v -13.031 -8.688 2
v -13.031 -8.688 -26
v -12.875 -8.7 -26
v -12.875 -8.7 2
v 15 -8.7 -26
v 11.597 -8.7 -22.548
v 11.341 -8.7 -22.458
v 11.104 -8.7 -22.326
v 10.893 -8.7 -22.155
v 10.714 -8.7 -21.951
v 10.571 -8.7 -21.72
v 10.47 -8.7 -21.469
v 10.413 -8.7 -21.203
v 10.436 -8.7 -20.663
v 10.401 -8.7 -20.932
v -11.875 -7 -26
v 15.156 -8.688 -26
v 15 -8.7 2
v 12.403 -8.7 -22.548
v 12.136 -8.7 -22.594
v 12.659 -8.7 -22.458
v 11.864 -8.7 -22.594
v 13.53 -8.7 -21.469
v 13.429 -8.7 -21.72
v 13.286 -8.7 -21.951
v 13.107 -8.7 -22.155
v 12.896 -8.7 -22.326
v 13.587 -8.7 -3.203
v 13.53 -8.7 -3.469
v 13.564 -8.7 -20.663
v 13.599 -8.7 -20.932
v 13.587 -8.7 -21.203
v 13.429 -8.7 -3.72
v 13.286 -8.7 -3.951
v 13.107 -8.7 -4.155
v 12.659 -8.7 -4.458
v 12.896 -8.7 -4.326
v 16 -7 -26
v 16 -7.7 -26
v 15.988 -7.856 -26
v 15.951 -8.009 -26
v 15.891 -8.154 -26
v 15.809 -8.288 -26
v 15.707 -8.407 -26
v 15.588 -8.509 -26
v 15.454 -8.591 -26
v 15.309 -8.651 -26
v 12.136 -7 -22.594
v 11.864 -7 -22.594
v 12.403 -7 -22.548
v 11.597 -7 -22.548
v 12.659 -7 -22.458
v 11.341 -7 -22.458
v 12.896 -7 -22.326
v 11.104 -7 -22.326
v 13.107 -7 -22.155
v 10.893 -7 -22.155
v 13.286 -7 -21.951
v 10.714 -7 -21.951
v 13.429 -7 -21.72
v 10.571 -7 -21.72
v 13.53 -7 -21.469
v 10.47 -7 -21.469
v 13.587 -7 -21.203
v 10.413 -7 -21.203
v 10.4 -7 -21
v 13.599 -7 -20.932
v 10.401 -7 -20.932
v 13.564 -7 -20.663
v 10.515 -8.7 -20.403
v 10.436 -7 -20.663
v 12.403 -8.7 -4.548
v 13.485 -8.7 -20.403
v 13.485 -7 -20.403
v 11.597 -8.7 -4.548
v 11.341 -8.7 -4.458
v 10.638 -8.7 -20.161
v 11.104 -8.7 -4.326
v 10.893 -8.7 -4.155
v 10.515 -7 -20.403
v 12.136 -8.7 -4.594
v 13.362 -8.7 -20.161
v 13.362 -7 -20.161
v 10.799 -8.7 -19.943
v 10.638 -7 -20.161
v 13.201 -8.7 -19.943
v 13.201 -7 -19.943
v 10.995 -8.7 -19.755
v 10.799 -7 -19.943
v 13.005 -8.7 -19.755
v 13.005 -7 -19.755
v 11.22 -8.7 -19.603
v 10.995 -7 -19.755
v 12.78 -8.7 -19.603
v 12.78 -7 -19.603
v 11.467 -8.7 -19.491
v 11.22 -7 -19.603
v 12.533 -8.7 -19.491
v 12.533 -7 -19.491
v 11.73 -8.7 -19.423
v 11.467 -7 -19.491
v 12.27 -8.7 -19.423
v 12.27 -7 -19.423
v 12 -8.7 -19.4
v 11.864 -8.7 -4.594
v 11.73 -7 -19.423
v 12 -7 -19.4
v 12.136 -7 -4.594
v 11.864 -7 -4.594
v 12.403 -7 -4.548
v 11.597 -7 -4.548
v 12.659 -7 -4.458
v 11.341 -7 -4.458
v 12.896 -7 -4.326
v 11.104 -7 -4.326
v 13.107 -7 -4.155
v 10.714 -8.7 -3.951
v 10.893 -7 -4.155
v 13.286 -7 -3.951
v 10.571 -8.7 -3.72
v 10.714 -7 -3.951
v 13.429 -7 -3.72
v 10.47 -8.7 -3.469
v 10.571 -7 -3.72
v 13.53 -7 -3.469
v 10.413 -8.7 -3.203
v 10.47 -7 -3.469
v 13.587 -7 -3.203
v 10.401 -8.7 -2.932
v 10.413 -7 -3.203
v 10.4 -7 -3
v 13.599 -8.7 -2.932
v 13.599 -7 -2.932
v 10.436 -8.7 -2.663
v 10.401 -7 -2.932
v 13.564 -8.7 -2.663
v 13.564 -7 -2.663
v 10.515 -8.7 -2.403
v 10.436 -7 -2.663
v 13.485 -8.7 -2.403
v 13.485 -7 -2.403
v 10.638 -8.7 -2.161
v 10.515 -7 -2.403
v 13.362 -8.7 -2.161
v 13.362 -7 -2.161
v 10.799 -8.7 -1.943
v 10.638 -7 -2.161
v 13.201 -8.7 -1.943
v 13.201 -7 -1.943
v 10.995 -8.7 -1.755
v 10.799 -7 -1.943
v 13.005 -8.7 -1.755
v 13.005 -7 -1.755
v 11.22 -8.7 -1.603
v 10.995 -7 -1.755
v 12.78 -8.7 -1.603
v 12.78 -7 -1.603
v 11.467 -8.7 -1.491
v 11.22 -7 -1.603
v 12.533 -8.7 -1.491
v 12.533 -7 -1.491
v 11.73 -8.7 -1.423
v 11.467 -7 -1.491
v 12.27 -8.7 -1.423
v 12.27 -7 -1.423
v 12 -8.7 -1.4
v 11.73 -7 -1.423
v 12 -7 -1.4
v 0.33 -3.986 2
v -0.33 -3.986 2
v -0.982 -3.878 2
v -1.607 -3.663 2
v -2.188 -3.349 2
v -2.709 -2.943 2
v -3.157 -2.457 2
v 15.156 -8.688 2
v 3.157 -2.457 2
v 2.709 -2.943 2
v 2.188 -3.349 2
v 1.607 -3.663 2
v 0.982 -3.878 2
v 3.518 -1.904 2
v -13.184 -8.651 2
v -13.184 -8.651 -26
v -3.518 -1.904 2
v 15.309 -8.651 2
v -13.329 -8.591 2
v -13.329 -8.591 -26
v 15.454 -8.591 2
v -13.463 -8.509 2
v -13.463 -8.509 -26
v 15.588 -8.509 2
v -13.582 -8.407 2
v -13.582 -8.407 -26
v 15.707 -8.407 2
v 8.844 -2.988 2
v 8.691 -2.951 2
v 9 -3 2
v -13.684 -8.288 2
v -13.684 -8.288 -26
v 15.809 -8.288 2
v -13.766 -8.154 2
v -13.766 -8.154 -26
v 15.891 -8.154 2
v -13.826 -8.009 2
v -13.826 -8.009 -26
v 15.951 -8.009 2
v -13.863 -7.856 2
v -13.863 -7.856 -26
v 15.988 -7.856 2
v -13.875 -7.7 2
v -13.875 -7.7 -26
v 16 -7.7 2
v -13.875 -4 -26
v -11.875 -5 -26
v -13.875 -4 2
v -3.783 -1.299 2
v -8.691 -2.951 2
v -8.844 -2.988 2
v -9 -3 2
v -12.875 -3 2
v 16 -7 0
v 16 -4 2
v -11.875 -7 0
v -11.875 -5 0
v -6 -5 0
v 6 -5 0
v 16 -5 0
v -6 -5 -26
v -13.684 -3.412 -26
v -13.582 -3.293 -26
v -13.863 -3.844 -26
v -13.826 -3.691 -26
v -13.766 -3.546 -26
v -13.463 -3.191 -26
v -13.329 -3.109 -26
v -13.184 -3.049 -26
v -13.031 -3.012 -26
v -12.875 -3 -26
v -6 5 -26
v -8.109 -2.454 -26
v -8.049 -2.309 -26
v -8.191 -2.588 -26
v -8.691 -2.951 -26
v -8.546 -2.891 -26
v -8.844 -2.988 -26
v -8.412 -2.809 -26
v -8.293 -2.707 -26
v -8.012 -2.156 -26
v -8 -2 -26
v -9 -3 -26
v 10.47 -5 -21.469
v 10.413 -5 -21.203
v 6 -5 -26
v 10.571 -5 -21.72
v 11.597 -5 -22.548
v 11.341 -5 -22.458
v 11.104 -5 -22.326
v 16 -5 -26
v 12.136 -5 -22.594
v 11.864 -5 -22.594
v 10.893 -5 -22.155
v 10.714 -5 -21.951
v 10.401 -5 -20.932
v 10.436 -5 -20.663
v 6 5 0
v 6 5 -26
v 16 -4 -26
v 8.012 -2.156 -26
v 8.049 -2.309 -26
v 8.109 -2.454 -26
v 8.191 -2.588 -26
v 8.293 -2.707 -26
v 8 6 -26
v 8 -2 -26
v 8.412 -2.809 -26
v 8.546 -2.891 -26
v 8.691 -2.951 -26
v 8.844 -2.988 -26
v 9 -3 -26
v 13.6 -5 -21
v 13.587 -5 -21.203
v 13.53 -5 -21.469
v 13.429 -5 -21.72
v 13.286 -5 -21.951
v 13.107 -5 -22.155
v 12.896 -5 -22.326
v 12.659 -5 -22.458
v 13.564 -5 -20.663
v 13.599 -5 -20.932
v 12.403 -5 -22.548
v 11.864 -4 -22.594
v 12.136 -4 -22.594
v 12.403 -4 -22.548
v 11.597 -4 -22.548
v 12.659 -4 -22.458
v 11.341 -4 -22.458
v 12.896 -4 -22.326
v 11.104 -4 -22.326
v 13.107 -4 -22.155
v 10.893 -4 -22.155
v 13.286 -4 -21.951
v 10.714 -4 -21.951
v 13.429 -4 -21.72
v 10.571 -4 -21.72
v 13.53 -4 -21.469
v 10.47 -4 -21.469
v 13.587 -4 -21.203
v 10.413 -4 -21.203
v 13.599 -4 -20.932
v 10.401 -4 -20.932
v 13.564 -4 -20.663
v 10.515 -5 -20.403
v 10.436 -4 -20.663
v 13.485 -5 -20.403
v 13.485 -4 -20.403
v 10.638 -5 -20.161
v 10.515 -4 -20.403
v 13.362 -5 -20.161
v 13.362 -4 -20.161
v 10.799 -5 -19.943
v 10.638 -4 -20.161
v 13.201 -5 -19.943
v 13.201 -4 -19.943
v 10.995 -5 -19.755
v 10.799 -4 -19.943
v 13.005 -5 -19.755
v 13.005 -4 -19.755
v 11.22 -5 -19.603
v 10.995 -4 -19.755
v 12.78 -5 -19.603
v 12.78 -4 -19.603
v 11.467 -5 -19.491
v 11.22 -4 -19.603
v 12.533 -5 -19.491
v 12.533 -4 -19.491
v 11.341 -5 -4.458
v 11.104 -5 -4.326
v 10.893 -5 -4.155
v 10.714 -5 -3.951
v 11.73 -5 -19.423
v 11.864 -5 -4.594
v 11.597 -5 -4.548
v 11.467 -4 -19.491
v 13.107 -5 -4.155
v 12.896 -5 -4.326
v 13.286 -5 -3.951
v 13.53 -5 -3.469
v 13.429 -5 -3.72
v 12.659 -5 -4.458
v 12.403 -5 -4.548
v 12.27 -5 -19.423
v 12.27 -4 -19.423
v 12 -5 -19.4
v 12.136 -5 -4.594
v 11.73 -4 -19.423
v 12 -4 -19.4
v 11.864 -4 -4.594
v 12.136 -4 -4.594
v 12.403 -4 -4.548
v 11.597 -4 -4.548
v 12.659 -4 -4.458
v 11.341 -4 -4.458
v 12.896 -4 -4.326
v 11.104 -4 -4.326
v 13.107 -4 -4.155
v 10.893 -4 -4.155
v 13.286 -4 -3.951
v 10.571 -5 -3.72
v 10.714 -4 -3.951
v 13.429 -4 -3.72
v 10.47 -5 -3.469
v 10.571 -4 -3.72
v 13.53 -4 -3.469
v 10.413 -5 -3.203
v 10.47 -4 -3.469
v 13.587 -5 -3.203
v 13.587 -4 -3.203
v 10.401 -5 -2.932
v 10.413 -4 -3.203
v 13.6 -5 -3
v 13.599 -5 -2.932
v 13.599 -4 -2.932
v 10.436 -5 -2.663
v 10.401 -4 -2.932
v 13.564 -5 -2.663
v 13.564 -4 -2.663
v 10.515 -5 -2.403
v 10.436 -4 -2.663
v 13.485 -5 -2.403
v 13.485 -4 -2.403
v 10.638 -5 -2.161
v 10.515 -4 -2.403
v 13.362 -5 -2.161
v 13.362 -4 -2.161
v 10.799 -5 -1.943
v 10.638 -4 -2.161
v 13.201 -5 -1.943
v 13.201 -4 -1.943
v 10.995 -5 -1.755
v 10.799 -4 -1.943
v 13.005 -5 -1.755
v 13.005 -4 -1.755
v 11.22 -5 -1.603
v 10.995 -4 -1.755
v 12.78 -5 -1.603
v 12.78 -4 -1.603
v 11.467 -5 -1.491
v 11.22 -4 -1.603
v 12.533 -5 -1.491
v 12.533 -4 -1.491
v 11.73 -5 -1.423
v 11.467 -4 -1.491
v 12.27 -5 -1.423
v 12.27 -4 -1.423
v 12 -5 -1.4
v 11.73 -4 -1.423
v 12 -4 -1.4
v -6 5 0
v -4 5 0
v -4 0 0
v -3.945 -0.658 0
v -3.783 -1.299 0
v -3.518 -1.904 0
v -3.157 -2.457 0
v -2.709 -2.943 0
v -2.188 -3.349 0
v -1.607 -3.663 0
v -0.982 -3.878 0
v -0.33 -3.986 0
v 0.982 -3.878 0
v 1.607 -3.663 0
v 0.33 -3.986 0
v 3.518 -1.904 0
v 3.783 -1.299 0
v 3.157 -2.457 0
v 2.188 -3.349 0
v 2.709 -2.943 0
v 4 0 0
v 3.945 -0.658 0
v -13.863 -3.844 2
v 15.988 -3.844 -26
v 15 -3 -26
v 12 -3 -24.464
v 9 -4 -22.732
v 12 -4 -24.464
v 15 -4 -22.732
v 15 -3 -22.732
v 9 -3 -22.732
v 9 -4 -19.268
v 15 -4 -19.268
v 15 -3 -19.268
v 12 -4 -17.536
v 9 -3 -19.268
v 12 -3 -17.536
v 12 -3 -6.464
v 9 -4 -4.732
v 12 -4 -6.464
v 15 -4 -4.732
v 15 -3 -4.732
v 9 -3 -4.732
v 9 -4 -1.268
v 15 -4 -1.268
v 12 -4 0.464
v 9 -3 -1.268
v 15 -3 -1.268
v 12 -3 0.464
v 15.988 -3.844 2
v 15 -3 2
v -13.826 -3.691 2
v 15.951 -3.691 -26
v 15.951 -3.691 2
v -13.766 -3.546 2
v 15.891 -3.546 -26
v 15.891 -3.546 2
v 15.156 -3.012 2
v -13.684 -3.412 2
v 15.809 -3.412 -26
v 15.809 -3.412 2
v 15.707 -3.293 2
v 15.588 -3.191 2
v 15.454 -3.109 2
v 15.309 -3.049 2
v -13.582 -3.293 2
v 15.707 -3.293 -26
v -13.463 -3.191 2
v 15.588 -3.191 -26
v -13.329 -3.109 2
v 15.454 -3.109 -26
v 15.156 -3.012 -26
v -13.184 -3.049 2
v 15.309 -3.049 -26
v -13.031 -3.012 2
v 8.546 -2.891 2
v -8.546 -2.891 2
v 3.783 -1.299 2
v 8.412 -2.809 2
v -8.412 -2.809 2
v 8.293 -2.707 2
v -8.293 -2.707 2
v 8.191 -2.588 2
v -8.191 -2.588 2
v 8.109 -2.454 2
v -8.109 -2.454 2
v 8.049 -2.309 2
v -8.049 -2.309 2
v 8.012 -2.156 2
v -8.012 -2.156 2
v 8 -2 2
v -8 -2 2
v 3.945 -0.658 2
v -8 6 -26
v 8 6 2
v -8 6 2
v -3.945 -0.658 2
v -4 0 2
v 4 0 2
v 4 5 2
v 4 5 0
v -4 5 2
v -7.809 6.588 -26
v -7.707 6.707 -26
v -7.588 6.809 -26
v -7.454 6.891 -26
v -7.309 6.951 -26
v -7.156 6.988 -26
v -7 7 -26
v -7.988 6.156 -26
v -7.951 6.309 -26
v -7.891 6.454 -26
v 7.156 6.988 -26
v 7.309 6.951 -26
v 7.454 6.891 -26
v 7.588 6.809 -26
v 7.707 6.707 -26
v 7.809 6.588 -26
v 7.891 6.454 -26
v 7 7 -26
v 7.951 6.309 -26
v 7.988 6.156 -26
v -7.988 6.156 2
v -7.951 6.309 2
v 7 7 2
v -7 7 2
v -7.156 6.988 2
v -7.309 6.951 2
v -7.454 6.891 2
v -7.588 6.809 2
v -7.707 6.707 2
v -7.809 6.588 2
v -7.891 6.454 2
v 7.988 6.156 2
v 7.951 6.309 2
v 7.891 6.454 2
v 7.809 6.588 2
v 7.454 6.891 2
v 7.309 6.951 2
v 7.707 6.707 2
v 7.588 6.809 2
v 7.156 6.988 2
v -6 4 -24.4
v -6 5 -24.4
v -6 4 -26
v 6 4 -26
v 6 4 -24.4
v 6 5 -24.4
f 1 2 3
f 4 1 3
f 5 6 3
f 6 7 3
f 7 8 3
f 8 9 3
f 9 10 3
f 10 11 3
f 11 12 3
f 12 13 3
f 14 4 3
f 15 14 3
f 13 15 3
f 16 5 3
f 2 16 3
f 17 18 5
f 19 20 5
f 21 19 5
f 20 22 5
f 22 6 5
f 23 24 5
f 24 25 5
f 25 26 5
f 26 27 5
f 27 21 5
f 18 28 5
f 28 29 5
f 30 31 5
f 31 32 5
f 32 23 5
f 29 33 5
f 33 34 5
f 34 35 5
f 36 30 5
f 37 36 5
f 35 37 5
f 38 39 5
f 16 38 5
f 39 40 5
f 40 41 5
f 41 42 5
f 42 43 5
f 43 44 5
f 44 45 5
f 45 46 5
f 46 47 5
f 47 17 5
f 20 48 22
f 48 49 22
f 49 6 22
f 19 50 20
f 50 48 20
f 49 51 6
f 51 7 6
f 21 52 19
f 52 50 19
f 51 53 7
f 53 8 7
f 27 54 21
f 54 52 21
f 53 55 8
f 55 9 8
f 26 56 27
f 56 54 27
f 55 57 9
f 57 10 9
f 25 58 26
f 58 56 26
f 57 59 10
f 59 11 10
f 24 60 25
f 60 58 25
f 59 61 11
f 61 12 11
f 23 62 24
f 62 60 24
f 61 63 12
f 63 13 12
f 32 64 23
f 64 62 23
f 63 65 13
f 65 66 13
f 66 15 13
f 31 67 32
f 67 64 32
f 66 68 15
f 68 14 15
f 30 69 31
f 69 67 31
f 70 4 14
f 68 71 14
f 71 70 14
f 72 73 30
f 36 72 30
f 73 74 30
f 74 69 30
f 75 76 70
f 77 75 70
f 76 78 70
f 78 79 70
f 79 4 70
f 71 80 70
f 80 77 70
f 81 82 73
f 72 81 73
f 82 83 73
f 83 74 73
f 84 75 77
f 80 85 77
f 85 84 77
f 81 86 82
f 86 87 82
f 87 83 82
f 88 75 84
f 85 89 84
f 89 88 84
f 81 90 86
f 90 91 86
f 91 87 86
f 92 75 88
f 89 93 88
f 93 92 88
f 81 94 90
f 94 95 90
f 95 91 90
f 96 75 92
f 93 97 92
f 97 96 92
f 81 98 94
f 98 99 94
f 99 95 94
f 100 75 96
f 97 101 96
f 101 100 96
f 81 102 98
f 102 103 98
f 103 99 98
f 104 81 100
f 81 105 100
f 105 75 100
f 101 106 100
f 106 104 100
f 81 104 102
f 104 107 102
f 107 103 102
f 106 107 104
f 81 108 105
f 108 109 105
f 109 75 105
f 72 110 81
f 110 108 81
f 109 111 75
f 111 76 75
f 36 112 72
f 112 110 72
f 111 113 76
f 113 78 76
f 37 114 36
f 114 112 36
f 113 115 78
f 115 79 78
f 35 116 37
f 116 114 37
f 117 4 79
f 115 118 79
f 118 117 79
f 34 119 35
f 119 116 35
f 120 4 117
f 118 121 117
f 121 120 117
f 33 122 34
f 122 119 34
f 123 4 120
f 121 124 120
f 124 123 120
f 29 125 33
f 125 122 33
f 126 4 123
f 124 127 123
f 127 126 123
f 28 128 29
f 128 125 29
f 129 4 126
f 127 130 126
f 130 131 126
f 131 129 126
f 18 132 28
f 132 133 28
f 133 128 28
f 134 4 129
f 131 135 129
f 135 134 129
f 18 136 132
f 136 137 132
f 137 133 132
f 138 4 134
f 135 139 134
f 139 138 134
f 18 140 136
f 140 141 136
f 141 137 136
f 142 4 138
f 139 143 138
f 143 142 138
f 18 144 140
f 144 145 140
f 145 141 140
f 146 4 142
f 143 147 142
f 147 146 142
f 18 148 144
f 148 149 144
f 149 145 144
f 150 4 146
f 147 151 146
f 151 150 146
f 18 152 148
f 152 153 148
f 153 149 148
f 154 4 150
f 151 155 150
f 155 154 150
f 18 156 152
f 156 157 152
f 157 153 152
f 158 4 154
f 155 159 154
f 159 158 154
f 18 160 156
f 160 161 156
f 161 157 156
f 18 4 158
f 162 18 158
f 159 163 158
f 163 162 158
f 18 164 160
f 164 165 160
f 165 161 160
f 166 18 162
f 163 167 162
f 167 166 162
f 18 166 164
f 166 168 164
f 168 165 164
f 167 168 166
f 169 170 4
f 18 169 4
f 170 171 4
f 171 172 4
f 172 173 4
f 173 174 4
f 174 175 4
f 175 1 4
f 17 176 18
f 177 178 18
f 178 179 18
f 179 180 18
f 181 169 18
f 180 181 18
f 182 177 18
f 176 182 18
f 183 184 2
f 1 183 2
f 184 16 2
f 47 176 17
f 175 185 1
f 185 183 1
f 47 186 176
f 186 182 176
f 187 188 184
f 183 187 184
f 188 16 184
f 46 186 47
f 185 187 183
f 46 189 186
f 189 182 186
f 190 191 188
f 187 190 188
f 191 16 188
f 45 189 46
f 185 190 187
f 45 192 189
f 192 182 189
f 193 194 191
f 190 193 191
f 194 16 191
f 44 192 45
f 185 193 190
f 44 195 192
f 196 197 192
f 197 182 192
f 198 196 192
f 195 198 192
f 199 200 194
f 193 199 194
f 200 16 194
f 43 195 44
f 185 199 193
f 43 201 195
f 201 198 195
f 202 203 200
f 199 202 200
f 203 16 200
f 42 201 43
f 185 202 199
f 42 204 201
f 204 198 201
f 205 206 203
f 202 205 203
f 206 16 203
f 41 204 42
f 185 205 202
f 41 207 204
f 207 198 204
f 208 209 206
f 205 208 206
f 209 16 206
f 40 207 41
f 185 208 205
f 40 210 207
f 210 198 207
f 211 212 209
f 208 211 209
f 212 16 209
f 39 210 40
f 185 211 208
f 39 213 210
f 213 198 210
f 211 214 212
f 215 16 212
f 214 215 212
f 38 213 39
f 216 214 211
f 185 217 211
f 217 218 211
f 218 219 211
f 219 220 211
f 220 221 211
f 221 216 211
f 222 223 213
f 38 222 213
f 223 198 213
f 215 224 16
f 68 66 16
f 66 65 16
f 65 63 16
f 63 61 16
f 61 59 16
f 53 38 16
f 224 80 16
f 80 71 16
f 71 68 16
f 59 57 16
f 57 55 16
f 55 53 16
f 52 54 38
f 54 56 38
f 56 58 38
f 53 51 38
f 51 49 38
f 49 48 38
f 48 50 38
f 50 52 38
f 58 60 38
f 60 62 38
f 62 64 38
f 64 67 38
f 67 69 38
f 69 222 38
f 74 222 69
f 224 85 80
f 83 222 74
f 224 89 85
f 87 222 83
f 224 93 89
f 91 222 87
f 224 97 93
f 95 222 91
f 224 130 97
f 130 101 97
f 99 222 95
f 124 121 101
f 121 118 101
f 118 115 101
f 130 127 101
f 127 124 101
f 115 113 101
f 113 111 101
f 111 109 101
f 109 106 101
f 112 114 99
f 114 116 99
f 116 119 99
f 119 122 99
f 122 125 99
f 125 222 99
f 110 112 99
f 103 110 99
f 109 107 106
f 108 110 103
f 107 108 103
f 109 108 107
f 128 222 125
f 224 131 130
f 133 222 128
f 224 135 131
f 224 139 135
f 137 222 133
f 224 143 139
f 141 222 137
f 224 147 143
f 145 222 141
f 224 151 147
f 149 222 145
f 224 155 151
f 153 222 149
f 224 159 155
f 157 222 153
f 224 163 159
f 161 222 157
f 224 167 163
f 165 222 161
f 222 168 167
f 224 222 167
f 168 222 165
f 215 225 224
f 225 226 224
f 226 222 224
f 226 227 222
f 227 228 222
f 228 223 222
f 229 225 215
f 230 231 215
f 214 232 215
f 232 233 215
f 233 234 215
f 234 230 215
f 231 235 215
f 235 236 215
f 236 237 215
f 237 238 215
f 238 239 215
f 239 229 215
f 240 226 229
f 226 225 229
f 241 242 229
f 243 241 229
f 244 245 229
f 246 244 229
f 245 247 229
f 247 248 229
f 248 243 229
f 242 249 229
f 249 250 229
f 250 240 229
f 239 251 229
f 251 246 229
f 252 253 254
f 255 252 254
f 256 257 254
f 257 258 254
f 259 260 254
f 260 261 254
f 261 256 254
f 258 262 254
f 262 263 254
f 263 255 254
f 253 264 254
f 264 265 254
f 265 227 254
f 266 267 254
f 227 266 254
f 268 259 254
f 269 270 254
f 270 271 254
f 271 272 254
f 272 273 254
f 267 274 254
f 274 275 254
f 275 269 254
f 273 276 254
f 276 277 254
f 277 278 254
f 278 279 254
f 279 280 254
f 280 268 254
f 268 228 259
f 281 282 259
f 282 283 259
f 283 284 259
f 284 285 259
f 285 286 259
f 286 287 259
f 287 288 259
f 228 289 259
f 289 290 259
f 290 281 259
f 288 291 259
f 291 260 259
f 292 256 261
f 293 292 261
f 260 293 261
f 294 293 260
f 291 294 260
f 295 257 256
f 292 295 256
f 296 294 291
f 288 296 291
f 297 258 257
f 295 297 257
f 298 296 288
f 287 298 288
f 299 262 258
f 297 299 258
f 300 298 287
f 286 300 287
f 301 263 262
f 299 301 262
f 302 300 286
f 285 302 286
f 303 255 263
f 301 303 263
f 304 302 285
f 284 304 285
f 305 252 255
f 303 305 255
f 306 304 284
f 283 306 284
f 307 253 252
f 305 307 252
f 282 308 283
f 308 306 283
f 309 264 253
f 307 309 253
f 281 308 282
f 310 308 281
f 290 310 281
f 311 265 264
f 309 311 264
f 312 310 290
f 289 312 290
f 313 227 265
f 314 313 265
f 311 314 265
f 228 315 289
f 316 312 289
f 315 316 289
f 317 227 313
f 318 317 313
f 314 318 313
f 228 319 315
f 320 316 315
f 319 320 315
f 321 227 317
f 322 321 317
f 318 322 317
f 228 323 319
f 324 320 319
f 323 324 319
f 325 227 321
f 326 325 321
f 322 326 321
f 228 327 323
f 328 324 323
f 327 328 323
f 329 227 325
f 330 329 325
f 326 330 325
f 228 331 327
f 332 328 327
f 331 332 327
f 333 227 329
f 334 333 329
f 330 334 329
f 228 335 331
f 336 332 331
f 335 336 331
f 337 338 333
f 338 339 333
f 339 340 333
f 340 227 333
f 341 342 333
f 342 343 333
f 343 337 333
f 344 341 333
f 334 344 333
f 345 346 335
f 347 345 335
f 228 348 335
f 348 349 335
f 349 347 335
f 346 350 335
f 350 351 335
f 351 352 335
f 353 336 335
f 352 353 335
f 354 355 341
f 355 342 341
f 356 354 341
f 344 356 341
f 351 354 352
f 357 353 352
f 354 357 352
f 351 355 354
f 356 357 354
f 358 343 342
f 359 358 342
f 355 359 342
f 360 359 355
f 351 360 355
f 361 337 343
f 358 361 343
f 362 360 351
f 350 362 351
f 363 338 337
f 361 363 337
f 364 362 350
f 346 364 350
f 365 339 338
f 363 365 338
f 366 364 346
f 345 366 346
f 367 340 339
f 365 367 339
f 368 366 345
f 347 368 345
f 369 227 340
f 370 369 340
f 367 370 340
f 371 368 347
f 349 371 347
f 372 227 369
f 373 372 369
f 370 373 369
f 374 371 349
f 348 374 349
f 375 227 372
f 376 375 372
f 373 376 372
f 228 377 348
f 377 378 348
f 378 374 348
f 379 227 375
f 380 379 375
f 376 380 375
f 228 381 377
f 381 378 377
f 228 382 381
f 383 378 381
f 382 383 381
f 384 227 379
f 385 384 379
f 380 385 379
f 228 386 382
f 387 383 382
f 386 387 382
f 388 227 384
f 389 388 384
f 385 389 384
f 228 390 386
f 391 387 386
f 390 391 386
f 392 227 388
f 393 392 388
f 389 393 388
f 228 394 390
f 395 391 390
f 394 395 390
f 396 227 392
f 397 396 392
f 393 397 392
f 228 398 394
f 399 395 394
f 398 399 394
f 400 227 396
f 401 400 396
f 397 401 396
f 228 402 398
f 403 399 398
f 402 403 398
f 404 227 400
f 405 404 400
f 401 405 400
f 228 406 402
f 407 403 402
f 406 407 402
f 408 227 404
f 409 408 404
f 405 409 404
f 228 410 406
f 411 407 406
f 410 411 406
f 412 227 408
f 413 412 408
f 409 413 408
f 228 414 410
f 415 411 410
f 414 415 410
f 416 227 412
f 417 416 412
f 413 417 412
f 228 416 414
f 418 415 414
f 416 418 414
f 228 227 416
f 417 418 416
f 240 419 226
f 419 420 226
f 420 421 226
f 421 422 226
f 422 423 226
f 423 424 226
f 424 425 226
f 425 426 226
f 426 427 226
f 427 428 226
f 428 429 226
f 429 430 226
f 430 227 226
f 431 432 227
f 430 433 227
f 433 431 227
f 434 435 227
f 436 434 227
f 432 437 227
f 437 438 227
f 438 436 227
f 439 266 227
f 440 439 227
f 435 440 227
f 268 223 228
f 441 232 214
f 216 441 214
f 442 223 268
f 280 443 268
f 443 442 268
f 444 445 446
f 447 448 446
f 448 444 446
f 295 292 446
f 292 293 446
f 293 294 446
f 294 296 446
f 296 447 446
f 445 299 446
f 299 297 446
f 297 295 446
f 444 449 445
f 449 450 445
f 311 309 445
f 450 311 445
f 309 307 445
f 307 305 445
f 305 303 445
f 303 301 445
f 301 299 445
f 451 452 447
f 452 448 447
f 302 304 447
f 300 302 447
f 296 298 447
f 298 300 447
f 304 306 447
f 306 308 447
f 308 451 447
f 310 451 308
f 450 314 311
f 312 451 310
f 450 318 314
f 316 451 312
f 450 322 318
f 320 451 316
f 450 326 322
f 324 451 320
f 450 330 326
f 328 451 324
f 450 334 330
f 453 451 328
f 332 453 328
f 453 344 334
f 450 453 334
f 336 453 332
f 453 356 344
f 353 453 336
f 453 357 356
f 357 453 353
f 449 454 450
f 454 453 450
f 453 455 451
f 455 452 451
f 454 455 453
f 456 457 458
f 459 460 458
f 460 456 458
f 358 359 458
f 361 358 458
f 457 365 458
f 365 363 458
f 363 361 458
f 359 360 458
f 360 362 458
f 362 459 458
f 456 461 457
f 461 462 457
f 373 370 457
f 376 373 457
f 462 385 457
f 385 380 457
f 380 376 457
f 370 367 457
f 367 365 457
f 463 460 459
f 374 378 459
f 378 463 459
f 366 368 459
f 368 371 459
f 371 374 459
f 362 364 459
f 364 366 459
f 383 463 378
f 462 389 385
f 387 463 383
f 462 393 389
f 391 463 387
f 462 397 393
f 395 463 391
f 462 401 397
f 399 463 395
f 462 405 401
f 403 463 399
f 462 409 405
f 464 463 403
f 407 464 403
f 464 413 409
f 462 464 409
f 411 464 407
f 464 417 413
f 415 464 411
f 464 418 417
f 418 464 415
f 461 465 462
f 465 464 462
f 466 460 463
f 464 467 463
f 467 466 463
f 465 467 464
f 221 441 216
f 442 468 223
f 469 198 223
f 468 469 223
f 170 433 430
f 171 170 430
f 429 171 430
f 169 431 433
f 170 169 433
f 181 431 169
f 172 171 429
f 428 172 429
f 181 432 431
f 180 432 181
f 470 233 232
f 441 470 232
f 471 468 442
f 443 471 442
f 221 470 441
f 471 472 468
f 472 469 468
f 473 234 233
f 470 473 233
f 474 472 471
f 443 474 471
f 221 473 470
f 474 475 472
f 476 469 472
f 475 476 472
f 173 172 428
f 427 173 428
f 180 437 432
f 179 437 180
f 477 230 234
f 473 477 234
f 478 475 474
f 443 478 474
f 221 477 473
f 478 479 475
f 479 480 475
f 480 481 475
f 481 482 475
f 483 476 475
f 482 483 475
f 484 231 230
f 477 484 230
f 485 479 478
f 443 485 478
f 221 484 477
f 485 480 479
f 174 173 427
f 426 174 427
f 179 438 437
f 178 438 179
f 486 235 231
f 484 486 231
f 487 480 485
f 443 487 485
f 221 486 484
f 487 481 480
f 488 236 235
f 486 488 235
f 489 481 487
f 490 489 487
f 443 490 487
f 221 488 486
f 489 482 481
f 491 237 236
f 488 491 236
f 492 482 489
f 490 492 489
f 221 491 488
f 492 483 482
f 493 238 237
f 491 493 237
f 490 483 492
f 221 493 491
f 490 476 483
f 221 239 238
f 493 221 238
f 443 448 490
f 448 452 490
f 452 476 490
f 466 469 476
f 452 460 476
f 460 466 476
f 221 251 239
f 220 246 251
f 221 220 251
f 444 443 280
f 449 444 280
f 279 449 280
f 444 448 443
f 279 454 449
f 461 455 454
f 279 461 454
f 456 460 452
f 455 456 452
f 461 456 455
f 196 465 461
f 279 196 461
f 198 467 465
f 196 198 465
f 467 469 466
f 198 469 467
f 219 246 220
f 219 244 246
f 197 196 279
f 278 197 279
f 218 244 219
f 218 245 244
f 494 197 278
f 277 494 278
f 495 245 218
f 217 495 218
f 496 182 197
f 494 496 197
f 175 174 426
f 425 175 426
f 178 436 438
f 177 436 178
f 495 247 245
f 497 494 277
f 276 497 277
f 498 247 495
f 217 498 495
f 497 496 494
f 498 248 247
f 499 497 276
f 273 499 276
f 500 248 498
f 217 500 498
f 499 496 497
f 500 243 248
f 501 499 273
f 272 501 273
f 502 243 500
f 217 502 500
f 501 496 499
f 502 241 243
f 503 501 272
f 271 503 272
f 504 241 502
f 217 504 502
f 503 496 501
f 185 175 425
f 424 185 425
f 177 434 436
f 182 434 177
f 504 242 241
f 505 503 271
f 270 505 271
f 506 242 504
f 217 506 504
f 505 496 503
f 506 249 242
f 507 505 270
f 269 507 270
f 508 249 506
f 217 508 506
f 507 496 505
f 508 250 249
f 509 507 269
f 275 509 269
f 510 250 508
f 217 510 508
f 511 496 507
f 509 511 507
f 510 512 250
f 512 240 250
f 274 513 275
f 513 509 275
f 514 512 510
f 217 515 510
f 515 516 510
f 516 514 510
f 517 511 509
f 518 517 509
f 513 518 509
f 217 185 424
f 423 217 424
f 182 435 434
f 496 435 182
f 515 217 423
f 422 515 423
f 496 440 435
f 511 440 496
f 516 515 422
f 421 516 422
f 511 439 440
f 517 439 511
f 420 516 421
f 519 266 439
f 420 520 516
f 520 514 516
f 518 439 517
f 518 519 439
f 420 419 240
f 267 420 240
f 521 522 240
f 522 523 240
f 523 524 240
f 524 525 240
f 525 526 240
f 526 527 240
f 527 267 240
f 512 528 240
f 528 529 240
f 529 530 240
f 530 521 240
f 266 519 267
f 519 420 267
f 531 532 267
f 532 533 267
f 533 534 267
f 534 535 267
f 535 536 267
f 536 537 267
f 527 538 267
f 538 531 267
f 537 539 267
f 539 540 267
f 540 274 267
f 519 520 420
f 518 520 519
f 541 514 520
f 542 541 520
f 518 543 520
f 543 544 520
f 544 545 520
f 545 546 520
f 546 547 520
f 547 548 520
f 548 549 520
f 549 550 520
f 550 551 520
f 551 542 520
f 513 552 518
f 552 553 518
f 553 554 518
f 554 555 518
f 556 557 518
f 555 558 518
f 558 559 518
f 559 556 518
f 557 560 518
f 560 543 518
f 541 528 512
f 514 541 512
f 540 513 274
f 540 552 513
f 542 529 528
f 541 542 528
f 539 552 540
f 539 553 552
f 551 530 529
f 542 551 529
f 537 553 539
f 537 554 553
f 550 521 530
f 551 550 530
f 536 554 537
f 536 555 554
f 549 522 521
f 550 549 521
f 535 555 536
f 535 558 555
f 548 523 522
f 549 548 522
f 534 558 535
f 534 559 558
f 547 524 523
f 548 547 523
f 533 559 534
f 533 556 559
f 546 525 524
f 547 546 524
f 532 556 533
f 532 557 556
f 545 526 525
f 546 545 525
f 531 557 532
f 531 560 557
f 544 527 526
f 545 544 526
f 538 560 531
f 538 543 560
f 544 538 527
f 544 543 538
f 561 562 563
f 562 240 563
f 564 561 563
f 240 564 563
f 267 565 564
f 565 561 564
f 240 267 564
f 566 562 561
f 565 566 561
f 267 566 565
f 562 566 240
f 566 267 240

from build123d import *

# Parameters (mm, degrees)
EXTRUDE_1_DEPTH          = 2
EXTRUDE_2_DEPTH          = 26
CUT_EXTRUDE_2_DEPTH      = 11
CUT_EXTRUDE_2_DEPTH_BACK = 1
CUT_EXTRUDE_3_DEPTH      = 11
CUT_EXTRUDE_3_DEPTH_BACK = 1
SKETCH_9_R               = 1.6
CUT_EXTRUDE_4_DEPTH      = 5.7
SKETCH_10_W              = 12
SKETCH_10_H              = 1
EXTRUDE_3_DEPTH          = 1.6


with BuildPart() as part:
    # 草图1 → 凸台-拉伸1 (new body)
    with BuildSketch(Plane.XY):
        with BuildLine():
            ThreePointArc((16, -4), (15.707106781, -3.292893219), (15, -3))
            Line((15, -3), (9, -3))
            ThreePointArc((9, -3), (8.292893219, -2.707106781), (8, -2))
            Line((8, -2), (8, 6))
            ThreePointArc((8, 6), (7.707106781, 6.707106781), (7, 7))
            Line((7, 7), (-7, 7))
            ThreePointArc((-7, 7), (-7.707106781, 6.707106781), (-8, 6))
            Line((-8, 6), (-8, -2))
            ThreePointArc((-8, -2), (-8.292893219, -2.707106781), (-9, -3))
            Line((-9, -3), (-12.875, -3))
            ThreePointArc((-12.875, -3), (-13.582106781, -3.292893219), (-13.875, -4))
            Line((-13.875, -4), (-13.875, -7.7))
            ThreePointArc((-13.875, -7.7), (-13.582106781, -8.407106781), (-12.875, -8.7))
            Line((-12.875, -8.7), (15, -8.7))
            ThreePointArc((15, -8.7), (15.707106781, -8.407106781), (16, -7.7))
            Line((16, -7.7), (16, -4))
        make_face()
        with BuildLine():
            Line((4, 5), (4, 0))
            ThreePointArc((4, 0), (0, -4), (-4, 0))
            Line((-4, 0), (-4, 5))
            Line((-4, 5), (4, 5))
        make_face(mode=Mode.SUBTRACT)
    extrude(amount=EXTRUDE_1_DEPTH)

    # 草图2 → 凸台-拉伸2 (add)
    with BuildSketch(Plane(origin=(0, 0, 0), x_dir=(-1, 0, 0), z_dir=(0, 0, -1))):
        with BuildLine():
            Line((-6, 4.5), (-6, 5))
            Line((-6, 5), (-5.5, 5))
            Line((-5.5, 5), (5.5, 5))
            Line((5.5, 5), (6, 5))
            Line((6, 5), (6, 4.5))
            Line((6, 4.5), (6, -4.5))
            Line((6, -4.5), (6, -5))
            Line((6, -5), (11.875, -5))
            Line((11.875, -5), (11.875, -7))
            Line((11.875, -7), (-16, -7))
            Line((-16, -7), (-16, -7.7))
            ThreePointArc((-16, -7.7), (-15.707106781, -8.407106781), (-15, -8.7))
            Line((-15, -8.7), (12.875, -8.7))
            ThreePointArc((12.875, -8.7), (13.582106781, -8.407106781), (13.875, -7.7))
            Line((13.875, -7.7), (13.875, -4))
            ThreePointArc((13.875, -4), (13.582106781, -3.292893219), (12.875, -3))
            Line((12.875, -3), (9, -3))
            ThreePointArc((9, -3), (8.292893219, -2.707106781), (8, -2))
            Line((8, -2), (8, 6))
            ThreePointArc((8, 6), (7.707106781, 6.707106781), (7, 7))
            Line((7, 7), (-7, 7))
            ThreePointArc((-7, 7), (-7.707106781, 6.707106781), (-8, 6))
            Line((-8, 6), (-8, -2))
            ThreePointArc((-8, -2), (-8.292893219, -2.707106781), (-9, -3))
            Line((-9, -3), (-15, -3))
            ThreePointArc((-15, -3), (-15.707106781, -3.292893219), (-16, -4))
            Line((-16, -4), (-16, -5))
            Line((-16, -5), (-6, -5))
            Line((-6, -5), (-6, -4.5))
            Line((-6, -4.5), (-6, 4.5))
        make_face()
    extrude(amount=EXTRUDE_2_DEPTH)

    # 草图5 → 切除-拉伸2 (cut, two sides)
    with BuildSketch(Plane(origin=(0, -3, 0), x_dir=(1, 0, 0), z_dir=(0, 1, 0))) as cut_extrude_2_sk:
        Polygon((15, 22.732050808), (12, 24.464101615), (9, 22.732050808), (9, 19.267949192), (12, 17.535898385), (15, 19.267949192), align=None)
    extrude(amount=CUT_EXTRUDE_2_DEPTH, mode=Mode.SUBTRACT)
    extrude(cut_extrude_2_sk.sketch, amount=-CUT_EXTRUDE_2_DEPTH_BACK, mode=Mode.SUBTRACT)

    # 草图6 → 切除-拉伸3 (cut, two sides)
    with BuildSketch(Plane(origin=(0, -3, 0), x_dir=(1, 0, 0), z_dir=(0, 1, 0))) as cut_extrude_3_sk:
        Polygon((15, 4.732050808), (12, 6.464101615), (9, 4.732050808), (9, 1.267949192), (12, -0.464101615), (15, 1.267949192), align=None)
    extrude(amount=CUT_EXTRUDE_3_DEPTH, mode=Mode.SUBTRACT)
    extrude(cut_extrude_3_sk.sketch, amount=-CUT_EXTRUDE_3_DEPTH_BACK, mode=Mode.SUBTRACT)

    # 草图9 → 切除-拉伸4 (cut, through all)
    with BuildSketch(Plane(origin=(0, -4, 0), x_dir=(1, 0, 0), z_dir=(0, 1, 0))):
        with Locations((12, 3)):
            Circle(SKETCH_9_R)
        with Locations((12, 21)):
            Circle(SKETCH_9_R)
    extrude(amount=-CUT_EXTRUDE_4_DEPTH, mode=Mode.SUBTRACT)


with BuildPart() as body_2:
    # 草图10 → 凸台-拉伸3 (new body)
    with BuildSketch(Plane(origin=(0, 0, -26), x_dir=(-1, 0, 0), z_dir=(0, 0, -1))):
        with Locations((0, 4.5)):
            Rectangle(SKETCH_10_W, SKETCH_10_H)
    extrude(amount=-EXTRUDE_3_DEPTH)


solid = Compound([part.part, body_2.part])
